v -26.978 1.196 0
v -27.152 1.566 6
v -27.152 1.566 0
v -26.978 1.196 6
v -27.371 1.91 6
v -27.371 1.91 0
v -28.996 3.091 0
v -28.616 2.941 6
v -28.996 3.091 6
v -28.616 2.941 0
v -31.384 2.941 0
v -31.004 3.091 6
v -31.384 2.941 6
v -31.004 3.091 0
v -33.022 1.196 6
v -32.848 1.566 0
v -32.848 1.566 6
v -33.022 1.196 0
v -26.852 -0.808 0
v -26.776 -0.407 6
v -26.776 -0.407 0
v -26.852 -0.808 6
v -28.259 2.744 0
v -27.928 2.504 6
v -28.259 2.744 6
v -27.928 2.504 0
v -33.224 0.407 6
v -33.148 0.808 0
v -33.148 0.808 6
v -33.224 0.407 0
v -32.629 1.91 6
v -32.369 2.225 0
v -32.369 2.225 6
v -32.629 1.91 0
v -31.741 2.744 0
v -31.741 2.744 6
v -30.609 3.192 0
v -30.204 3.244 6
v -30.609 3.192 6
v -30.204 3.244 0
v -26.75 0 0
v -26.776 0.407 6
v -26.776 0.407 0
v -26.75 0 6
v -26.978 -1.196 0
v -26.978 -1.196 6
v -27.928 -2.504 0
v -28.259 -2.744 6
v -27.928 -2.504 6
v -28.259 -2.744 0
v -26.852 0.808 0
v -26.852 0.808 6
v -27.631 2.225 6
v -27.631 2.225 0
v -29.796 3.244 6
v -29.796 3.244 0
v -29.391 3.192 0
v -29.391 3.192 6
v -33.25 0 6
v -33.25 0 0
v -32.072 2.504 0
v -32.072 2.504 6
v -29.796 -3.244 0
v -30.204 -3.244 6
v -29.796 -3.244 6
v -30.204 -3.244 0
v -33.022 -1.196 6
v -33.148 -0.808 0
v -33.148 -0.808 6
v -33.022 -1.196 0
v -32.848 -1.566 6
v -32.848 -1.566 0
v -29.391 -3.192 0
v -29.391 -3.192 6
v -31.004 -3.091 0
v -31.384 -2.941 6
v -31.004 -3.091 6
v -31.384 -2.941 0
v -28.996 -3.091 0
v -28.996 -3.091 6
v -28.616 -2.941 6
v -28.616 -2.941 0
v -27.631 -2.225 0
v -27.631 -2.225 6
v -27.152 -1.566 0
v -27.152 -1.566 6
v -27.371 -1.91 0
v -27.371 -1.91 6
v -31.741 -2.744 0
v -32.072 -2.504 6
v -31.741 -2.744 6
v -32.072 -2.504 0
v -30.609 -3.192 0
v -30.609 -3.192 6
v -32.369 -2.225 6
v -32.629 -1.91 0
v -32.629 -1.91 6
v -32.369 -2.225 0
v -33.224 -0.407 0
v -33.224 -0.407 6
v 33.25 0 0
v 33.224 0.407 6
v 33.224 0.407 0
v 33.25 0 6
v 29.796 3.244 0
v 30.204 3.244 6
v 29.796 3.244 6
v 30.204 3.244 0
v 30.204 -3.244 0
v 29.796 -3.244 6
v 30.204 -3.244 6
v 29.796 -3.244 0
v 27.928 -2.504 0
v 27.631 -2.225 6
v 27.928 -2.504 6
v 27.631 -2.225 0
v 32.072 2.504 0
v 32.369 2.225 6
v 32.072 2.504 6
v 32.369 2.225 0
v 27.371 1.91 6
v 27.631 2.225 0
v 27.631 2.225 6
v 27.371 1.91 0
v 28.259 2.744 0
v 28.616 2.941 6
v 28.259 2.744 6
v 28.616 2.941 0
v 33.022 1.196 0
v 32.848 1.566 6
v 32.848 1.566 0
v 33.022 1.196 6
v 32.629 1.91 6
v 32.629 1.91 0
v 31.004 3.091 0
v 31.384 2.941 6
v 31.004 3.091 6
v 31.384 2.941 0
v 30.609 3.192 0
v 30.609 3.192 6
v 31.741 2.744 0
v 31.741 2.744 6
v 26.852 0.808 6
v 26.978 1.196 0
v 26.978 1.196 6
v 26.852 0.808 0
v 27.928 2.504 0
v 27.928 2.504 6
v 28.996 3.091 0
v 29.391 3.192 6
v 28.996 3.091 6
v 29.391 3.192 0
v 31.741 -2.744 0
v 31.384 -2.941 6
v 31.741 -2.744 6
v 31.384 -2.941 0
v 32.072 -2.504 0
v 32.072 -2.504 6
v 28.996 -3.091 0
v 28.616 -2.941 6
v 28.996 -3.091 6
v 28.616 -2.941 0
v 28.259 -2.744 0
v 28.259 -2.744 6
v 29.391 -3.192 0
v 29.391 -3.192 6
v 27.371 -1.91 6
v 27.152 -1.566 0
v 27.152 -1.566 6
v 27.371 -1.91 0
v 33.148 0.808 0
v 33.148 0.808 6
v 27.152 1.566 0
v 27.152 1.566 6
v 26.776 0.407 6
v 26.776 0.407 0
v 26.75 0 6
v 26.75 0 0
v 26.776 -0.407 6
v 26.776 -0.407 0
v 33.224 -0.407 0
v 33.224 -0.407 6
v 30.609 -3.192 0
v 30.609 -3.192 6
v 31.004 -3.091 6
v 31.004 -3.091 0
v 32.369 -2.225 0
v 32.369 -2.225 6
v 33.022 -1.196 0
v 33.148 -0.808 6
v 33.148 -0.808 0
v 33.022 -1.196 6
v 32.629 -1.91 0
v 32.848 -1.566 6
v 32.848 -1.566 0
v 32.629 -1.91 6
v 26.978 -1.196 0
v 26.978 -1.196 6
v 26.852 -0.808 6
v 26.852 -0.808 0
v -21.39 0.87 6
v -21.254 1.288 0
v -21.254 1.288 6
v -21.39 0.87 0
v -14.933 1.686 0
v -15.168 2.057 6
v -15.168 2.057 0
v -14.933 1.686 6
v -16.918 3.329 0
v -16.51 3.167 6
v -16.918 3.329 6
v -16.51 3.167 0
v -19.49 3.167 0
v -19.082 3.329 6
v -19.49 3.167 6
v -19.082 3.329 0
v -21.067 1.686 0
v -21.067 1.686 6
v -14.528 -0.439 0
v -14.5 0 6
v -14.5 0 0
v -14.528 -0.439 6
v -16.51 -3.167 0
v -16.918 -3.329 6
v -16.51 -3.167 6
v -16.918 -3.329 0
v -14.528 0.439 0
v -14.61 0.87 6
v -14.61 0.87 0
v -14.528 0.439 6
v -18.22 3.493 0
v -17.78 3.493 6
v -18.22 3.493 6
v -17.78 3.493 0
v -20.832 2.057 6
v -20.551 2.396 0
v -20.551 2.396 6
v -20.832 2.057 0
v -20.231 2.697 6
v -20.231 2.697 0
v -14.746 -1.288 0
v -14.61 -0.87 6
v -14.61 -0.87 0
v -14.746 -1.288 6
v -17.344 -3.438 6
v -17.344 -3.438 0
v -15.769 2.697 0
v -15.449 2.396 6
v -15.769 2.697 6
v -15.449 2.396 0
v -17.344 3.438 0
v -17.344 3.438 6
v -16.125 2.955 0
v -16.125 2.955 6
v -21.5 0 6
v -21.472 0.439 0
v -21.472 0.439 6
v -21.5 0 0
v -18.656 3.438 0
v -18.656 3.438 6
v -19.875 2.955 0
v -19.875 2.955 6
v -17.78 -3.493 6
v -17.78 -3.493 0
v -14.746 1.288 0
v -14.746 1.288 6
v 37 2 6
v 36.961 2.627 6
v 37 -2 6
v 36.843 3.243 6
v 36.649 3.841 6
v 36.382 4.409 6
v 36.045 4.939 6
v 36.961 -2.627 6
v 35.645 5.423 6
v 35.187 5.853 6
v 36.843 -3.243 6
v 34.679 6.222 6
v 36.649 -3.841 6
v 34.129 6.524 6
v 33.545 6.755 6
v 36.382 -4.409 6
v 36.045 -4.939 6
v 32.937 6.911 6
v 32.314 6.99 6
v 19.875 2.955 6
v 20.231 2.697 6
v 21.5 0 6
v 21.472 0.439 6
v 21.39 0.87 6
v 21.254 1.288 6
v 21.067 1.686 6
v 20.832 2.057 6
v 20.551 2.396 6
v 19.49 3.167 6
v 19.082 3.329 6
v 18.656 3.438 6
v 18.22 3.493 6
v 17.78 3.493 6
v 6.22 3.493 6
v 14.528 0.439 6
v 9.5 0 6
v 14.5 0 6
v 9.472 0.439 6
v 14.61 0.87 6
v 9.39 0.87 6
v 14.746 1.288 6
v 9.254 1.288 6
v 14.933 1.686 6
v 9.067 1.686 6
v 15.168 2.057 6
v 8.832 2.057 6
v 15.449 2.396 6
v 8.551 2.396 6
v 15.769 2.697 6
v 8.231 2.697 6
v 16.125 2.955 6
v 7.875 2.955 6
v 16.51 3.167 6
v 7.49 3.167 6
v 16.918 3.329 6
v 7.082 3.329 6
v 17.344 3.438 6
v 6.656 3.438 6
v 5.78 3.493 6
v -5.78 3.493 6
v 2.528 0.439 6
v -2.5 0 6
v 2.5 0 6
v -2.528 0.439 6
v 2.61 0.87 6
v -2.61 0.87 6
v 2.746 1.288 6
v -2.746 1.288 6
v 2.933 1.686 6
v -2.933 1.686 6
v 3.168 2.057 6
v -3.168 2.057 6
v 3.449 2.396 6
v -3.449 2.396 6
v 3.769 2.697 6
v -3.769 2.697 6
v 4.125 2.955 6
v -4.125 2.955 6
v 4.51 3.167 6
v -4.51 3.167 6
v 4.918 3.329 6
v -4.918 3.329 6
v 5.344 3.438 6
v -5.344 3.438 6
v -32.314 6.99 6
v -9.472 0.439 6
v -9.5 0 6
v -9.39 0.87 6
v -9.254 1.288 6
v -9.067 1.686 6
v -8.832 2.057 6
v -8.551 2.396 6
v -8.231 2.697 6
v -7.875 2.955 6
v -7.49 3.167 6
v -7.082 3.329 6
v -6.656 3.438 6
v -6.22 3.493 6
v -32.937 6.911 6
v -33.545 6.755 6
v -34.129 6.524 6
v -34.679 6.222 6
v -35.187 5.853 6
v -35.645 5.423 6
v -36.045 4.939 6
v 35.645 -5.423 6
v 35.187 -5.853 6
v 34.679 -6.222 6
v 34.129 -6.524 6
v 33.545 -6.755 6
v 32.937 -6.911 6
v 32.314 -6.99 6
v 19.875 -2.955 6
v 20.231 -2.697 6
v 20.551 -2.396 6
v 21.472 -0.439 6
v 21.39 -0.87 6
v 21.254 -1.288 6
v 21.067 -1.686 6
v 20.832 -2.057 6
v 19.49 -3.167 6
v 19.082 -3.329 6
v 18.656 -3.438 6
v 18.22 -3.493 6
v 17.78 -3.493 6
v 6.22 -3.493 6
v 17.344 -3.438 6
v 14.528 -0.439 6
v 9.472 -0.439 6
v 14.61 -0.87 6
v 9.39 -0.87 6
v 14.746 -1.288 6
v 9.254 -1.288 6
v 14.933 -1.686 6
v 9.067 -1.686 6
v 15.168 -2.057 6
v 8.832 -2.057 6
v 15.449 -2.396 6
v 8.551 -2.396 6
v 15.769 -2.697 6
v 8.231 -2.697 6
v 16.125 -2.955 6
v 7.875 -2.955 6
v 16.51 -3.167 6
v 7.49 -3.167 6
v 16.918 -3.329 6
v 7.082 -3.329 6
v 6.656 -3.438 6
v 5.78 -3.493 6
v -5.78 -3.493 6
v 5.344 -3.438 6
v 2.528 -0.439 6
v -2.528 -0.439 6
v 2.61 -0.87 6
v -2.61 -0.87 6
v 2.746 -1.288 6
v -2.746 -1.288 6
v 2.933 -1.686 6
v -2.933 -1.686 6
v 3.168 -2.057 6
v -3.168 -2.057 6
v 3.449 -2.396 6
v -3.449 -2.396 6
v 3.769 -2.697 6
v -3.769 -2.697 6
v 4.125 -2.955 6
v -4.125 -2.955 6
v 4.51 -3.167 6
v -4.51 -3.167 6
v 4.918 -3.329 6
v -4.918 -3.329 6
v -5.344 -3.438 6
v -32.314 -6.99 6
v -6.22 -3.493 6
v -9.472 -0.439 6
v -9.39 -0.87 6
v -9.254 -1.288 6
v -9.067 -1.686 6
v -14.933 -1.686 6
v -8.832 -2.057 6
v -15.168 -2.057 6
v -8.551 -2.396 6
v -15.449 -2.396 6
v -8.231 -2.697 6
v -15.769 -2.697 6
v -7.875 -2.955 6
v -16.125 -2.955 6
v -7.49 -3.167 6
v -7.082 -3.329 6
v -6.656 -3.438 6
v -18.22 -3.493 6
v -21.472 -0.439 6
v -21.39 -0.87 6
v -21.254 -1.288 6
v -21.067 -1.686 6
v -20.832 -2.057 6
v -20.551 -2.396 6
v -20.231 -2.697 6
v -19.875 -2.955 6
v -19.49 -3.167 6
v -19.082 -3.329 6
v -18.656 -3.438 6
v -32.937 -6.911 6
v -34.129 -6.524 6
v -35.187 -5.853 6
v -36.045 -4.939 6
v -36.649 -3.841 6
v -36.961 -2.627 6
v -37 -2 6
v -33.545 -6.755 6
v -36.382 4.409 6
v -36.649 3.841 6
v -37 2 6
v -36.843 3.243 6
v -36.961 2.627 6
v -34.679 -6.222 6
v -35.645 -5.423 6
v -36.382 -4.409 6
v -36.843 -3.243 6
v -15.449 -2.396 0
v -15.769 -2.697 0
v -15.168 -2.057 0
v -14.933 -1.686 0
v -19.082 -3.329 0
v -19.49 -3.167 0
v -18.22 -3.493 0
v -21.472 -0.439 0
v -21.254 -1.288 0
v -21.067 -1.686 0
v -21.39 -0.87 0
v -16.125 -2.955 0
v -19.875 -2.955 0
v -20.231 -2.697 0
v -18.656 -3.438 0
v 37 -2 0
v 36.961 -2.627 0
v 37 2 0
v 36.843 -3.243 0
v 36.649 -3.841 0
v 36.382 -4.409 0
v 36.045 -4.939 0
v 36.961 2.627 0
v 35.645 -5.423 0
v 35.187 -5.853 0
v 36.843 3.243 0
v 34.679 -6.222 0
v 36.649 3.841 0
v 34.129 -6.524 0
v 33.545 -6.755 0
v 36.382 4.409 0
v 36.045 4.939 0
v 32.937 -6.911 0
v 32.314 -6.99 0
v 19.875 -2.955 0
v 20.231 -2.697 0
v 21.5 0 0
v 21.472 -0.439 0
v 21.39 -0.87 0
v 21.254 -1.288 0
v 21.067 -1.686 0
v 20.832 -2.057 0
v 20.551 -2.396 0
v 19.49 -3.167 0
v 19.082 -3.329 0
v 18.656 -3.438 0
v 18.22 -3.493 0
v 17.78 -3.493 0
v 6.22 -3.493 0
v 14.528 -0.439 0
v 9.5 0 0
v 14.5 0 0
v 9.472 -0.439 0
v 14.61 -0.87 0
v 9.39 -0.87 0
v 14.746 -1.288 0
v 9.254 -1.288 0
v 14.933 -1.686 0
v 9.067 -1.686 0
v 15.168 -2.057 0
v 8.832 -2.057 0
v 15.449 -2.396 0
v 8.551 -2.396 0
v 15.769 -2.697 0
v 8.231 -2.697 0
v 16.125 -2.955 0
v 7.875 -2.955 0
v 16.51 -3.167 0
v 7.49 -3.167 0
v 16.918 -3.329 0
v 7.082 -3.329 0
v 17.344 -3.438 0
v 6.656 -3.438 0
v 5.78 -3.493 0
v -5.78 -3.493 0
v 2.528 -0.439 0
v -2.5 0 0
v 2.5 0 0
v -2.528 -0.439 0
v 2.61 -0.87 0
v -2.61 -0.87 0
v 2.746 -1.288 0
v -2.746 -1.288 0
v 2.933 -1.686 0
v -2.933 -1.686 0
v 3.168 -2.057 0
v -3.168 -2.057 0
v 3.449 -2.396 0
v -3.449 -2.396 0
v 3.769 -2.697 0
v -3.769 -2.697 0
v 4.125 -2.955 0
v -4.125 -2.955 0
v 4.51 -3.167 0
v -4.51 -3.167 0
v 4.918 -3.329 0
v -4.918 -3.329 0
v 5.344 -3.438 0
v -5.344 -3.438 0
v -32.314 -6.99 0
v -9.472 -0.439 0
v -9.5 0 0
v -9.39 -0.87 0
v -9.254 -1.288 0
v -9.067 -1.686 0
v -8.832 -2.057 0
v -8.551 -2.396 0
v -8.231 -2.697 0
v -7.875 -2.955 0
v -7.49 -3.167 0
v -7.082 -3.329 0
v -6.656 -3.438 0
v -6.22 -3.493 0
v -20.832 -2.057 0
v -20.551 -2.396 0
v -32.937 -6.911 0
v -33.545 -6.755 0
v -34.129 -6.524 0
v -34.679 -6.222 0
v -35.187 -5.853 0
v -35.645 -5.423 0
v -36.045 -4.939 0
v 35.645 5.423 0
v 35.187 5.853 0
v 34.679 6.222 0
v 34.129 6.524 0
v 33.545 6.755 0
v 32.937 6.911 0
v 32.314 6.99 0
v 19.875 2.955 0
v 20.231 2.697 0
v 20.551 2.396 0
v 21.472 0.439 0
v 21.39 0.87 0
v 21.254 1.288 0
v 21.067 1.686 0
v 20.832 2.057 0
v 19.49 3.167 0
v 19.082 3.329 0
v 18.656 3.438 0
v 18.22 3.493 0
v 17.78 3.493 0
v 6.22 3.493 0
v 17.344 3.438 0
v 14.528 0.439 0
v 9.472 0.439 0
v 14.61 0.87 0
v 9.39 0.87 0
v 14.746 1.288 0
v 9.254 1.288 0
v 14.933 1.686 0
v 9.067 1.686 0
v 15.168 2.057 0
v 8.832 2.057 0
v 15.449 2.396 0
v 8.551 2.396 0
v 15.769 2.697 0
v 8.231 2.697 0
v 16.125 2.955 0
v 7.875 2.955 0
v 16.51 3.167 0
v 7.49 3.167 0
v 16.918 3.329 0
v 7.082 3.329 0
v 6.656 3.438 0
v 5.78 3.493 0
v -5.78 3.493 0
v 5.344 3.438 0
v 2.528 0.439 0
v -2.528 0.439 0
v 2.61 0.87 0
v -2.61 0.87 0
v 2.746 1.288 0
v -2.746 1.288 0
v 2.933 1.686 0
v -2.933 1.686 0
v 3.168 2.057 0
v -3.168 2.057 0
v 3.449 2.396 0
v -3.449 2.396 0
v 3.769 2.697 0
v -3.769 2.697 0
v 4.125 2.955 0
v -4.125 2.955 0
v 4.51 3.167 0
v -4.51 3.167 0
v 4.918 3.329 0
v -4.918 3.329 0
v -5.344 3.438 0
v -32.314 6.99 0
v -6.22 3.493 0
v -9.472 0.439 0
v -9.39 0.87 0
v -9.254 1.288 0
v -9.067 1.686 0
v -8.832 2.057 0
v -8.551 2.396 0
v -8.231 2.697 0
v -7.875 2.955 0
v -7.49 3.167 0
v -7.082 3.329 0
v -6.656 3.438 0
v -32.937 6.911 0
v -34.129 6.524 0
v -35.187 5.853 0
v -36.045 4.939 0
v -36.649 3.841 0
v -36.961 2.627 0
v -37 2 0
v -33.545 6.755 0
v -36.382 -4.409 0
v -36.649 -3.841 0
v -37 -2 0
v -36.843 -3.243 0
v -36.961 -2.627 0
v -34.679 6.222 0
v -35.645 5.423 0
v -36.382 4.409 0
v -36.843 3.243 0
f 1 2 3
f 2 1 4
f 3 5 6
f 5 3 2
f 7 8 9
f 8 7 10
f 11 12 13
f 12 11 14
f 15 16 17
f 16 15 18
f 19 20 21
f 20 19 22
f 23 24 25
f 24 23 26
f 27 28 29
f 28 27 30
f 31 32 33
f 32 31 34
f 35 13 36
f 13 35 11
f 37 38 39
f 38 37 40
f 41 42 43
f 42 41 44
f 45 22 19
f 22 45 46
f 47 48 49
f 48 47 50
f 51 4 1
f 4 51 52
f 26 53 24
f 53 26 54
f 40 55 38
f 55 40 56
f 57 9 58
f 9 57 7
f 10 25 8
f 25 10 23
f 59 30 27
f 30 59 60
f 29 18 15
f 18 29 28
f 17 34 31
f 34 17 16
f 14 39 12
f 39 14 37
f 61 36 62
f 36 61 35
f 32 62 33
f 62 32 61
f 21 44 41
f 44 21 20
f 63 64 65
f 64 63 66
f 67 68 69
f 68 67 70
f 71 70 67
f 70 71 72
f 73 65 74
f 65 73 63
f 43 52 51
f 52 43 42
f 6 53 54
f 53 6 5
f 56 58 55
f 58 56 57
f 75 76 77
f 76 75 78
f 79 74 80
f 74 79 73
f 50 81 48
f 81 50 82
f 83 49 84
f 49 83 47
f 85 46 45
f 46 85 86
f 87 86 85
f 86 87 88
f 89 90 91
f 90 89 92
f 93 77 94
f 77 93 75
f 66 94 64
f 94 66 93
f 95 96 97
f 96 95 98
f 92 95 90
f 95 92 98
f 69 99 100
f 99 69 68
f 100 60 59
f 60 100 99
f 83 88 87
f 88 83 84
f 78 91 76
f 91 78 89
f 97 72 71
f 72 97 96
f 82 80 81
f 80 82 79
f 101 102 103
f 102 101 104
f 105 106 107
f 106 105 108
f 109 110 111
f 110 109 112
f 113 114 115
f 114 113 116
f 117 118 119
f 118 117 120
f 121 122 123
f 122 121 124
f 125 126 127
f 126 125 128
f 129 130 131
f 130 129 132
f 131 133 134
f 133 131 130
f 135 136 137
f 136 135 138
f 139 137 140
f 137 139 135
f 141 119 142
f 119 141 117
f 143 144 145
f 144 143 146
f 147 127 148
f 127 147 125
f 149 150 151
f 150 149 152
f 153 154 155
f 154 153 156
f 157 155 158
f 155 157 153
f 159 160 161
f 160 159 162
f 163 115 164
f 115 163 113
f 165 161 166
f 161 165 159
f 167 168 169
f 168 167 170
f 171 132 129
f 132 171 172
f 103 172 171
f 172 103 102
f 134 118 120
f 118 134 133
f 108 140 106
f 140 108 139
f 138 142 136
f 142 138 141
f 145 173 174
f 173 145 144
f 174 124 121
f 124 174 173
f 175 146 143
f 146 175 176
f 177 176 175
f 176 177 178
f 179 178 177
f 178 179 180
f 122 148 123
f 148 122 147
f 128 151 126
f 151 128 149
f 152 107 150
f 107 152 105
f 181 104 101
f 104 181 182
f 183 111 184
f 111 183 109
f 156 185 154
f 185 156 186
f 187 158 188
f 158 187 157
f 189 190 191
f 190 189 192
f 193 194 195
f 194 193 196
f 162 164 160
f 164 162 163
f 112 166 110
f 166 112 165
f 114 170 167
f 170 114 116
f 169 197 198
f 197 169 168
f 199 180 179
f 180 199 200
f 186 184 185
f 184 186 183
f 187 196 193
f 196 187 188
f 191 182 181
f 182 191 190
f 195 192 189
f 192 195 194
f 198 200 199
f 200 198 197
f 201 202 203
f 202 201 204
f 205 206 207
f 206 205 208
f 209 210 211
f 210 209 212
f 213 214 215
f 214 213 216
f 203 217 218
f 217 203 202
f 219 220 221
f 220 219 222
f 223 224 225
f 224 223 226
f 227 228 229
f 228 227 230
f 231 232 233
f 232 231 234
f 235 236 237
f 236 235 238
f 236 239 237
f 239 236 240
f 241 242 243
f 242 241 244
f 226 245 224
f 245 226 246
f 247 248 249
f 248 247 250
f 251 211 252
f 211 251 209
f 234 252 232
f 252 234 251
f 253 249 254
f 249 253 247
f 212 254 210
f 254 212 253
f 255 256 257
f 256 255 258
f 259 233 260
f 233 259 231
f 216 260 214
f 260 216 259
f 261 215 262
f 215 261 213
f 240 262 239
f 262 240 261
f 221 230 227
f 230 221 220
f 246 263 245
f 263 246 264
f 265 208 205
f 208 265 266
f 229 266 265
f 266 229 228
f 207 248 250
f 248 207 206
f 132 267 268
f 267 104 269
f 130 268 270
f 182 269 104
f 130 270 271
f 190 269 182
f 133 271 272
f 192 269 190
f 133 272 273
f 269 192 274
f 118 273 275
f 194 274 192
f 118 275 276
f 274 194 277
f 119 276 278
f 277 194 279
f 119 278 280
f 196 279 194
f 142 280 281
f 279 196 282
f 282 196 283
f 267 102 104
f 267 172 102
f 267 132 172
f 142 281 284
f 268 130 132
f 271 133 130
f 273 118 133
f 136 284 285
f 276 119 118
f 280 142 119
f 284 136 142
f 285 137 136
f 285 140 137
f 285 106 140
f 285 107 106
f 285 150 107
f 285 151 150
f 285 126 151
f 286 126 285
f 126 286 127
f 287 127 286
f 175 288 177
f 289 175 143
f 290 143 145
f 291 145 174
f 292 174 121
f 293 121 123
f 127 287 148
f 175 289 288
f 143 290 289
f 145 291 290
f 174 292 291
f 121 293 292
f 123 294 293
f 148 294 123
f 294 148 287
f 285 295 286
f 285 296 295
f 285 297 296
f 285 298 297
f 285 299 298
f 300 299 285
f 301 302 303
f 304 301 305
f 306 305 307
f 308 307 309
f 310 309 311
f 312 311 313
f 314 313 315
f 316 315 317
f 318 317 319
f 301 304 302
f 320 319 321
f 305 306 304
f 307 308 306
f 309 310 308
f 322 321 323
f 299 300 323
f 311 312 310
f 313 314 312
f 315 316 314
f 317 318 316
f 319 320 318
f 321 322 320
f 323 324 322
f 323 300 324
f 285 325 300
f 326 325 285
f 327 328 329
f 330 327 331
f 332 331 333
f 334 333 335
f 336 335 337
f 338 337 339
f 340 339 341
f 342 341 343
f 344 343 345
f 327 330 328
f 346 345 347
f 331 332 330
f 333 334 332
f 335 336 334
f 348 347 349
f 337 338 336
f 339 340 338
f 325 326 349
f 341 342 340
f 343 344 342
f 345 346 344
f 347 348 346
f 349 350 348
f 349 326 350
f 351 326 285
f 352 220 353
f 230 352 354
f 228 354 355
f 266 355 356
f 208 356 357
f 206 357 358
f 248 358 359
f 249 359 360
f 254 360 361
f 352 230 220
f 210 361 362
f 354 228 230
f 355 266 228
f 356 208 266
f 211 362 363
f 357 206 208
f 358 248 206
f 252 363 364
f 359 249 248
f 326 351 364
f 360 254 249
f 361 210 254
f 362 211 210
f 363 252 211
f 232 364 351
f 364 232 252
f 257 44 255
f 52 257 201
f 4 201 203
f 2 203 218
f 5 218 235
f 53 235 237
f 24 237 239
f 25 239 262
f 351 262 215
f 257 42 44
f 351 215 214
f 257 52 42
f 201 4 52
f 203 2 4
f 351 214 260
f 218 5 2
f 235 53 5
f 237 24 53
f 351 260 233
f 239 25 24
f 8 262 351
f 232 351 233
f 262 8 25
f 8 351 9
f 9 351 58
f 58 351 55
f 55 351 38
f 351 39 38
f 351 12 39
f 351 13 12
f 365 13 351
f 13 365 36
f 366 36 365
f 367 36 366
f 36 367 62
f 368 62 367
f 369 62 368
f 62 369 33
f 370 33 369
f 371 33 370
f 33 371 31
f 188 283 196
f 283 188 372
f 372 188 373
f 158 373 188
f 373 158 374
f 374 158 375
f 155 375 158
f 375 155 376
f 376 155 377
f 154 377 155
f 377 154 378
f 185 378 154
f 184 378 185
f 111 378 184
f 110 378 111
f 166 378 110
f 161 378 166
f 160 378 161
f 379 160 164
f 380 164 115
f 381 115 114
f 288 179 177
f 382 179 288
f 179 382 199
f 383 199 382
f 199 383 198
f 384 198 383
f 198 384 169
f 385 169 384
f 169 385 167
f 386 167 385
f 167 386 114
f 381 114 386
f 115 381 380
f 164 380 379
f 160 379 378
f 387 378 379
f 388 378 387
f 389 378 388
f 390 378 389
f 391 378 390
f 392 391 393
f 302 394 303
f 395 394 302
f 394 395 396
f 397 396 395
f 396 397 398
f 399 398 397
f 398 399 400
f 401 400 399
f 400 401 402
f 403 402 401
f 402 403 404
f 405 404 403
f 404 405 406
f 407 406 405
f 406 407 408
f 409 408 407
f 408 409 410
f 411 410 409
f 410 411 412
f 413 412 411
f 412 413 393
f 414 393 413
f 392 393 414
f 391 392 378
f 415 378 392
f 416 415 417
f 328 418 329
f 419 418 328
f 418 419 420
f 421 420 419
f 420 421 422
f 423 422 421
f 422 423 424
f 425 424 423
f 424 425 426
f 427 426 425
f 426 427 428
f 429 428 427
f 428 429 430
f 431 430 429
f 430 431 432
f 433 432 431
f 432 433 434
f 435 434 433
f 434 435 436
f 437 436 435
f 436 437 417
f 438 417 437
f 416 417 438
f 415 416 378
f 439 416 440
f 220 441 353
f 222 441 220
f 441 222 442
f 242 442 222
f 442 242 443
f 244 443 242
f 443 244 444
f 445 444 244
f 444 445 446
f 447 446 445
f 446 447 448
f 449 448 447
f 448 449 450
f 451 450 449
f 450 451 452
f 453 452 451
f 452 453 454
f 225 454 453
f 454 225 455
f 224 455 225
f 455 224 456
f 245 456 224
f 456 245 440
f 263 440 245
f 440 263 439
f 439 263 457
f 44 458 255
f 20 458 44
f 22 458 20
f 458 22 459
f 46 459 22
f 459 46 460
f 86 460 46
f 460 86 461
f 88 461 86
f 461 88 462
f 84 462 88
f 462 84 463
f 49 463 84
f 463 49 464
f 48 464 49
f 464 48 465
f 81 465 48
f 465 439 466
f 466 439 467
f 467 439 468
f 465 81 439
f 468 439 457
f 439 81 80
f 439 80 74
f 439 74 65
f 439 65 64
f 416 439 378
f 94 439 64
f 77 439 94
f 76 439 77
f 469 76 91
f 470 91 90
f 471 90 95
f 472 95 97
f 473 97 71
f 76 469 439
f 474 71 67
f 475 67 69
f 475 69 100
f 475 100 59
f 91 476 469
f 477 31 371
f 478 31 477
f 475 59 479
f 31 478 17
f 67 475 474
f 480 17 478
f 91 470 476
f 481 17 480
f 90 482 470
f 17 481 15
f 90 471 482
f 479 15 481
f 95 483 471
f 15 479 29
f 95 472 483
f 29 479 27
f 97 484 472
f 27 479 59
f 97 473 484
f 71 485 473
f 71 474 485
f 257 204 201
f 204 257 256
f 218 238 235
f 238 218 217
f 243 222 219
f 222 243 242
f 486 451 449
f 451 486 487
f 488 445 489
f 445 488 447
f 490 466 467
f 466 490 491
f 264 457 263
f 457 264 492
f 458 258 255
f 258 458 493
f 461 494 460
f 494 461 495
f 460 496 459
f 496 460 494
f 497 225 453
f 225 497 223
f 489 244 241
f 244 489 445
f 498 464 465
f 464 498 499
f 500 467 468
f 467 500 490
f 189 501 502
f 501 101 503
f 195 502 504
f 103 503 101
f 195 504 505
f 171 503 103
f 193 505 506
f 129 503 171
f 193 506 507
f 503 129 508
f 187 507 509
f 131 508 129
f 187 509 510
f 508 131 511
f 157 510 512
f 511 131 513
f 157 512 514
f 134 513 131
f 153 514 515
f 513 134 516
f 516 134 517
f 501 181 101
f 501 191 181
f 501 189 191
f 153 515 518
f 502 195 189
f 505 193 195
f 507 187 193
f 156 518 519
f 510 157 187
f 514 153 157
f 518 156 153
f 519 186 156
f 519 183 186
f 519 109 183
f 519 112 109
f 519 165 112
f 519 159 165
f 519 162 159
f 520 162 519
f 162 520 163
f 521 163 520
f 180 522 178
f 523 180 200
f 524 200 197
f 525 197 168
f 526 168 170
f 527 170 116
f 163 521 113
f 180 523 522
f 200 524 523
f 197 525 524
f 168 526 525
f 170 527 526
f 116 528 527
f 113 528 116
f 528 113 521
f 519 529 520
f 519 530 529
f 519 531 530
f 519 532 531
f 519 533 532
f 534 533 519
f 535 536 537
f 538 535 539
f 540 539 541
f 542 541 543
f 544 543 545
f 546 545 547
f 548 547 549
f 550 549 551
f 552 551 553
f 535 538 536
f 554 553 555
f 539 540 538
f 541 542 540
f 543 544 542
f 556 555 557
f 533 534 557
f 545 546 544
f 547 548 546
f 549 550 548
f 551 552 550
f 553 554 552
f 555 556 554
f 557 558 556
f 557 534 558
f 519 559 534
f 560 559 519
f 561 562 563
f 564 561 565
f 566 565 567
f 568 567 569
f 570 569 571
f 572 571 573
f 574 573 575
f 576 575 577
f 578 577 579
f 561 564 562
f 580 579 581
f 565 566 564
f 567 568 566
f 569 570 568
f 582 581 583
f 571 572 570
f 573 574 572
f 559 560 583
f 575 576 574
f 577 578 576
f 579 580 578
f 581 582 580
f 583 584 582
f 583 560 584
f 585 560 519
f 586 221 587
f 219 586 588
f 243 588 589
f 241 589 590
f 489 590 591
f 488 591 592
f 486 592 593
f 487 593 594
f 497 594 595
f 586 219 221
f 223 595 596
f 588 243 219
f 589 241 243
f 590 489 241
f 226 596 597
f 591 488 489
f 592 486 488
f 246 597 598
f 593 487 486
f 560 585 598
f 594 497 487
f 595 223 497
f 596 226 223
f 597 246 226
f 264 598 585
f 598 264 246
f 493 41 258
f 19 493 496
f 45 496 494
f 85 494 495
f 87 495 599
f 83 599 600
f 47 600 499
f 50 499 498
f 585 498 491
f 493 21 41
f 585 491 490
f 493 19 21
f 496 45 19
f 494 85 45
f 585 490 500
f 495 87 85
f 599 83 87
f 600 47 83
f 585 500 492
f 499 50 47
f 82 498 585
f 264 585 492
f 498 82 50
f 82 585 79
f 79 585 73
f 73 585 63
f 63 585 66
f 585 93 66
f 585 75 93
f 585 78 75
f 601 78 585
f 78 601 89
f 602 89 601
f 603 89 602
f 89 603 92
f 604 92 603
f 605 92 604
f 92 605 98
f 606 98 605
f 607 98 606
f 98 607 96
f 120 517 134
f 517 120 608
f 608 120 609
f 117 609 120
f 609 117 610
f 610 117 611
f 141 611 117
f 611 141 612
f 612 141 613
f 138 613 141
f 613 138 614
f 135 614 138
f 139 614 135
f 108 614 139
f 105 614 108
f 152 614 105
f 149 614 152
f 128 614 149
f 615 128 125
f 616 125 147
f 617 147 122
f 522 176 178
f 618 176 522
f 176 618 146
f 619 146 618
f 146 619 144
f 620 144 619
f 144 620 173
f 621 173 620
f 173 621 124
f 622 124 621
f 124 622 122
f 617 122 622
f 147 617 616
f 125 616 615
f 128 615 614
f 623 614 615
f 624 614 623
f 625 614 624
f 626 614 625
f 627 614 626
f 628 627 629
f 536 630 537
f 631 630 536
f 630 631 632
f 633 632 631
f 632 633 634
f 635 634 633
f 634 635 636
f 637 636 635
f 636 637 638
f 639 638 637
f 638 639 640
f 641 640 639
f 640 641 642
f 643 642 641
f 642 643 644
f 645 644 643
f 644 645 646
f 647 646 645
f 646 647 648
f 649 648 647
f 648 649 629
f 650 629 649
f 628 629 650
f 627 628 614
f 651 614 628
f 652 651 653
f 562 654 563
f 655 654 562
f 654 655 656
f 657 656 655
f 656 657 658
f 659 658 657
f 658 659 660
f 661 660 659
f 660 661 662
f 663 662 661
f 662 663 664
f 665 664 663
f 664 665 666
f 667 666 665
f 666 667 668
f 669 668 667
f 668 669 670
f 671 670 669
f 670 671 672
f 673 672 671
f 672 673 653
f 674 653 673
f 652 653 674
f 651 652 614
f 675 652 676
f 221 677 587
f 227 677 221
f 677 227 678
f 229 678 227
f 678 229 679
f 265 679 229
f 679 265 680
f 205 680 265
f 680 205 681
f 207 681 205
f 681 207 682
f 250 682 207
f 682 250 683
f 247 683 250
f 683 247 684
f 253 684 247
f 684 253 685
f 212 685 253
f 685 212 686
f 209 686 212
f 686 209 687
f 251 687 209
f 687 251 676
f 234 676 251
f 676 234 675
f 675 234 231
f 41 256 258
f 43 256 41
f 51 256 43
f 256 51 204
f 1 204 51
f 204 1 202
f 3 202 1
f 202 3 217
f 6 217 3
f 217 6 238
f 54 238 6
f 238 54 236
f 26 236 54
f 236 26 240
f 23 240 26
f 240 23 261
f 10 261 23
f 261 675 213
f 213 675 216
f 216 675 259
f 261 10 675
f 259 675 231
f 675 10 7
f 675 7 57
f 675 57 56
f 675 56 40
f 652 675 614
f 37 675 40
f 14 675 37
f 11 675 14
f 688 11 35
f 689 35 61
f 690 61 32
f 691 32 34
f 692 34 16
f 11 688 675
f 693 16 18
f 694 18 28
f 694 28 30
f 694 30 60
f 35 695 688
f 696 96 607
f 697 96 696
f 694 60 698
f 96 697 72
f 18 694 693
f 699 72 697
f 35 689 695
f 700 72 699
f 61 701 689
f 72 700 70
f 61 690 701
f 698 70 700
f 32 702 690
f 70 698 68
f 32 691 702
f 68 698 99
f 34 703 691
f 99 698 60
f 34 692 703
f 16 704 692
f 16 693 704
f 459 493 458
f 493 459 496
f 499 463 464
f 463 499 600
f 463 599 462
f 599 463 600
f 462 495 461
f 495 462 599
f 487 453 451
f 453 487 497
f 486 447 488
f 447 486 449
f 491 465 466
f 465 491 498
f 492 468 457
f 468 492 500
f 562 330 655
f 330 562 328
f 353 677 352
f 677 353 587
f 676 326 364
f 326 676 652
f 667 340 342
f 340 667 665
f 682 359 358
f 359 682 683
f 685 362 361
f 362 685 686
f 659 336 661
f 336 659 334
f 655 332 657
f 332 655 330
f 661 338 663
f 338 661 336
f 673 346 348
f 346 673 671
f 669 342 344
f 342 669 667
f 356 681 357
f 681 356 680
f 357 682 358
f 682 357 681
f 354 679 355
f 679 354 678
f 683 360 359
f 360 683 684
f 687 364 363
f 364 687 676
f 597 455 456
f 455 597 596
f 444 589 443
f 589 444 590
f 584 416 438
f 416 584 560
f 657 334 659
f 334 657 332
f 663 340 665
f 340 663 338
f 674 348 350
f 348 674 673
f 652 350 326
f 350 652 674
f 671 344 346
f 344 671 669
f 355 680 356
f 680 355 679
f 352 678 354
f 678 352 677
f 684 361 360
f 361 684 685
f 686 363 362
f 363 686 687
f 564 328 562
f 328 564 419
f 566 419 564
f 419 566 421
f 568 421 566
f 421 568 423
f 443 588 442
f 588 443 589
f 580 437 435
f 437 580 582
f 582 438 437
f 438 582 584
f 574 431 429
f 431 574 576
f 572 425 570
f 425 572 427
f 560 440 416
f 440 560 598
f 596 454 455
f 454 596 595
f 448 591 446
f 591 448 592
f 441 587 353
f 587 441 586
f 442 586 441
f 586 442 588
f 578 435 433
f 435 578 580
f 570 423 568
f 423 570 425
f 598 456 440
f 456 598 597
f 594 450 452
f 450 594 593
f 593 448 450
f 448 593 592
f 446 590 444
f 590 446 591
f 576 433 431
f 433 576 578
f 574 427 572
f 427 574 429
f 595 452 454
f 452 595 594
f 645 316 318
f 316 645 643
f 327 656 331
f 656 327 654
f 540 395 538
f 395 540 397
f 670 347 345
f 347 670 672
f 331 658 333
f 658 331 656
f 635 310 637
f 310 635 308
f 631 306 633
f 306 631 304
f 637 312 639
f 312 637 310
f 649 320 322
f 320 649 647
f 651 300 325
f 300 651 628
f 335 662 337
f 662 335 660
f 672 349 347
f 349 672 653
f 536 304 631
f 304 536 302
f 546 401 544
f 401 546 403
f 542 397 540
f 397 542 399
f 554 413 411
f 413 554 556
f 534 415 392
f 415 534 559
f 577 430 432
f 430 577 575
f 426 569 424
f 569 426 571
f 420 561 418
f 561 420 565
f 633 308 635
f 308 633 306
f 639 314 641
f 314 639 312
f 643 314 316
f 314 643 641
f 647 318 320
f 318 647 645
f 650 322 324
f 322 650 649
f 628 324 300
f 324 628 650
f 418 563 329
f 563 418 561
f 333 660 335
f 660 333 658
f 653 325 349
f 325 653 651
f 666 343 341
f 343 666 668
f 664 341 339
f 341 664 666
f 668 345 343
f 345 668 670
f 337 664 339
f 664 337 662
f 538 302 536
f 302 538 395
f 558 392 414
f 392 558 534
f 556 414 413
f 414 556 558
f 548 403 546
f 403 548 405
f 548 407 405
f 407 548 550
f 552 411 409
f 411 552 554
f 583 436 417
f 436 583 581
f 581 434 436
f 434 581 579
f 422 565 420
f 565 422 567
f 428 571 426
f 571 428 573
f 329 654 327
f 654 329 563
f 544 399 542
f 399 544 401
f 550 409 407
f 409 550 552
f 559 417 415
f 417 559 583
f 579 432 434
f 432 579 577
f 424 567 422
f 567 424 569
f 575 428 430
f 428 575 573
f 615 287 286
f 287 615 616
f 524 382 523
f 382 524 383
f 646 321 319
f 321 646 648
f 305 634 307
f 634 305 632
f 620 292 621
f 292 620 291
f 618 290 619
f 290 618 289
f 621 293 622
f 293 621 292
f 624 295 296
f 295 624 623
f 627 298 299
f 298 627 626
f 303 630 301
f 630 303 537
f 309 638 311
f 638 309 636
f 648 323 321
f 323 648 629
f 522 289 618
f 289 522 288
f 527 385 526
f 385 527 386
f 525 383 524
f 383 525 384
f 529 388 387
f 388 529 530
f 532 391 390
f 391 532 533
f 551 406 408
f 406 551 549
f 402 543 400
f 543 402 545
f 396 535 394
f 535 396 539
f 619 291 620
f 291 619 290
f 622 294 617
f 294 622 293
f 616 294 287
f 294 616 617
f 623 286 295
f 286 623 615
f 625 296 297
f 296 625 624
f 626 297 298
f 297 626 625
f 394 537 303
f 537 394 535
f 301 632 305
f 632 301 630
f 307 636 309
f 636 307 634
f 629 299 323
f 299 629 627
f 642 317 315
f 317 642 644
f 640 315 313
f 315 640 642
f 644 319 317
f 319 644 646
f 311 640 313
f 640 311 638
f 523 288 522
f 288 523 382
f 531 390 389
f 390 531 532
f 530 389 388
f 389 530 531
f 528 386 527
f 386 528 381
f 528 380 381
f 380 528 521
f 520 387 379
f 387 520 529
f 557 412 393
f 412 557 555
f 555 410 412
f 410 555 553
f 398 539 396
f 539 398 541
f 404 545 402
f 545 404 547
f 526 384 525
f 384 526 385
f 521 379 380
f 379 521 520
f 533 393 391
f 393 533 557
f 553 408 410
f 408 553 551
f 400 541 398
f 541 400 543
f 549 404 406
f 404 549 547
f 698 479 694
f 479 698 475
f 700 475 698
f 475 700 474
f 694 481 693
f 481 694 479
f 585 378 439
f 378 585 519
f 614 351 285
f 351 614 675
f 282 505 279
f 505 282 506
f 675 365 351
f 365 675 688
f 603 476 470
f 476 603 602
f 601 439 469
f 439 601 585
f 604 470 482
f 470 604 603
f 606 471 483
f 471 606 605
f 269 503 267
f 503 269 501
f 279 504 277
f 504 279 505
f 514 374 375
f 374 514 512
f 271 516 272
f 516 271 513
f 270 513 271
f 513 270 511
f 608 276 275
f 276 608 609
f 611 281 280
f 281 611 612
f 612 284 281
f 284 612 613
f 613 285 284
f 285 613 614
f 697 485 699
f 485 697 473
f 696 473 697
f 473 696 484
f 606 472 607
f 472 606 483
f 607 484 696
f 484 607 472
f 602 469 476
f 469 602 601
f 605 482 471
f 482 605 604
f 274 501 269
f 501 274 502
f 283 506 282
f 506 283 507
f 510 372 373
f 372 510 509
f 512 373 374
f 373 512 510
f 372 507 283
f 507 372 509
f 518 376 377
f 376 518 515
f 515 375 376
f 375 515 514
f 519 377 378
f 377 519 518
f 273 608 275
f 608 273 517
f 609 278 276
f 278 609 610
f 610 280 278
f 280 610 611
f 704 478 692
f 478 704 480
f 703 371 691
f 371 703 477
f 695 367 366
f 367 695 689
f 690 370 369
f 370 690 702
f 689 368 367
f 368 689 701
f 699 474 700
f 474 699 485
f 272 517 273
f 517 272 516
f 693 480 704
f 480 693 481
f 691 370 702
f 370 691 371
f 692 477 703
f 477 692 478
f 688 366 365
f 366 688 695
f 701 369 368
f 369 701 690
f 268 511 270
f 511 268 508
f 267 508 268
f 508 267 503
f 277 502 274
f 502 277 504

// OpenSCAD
$fn = 50;


difference() {
	union() {
		hull() {
			translate(v = [-32.0000000000, 2.0000000000, 0]) {
				cylinder(h = 6, r = 5);
			}
			translate(v = [32.0000000000, 2.0000000000, 0]) {
				cylinder(h = 6, r = 5);
			}
			translate(v = [-32.0000000000, -2.0000000000, 0]) {
				cylinder(h = 6, r = 5);
			}
			translate(v = [32.0000000000, -2.0000000000, 0]) {
				cylinder(h = 6, r = 5);
			}
		}
	}
	union() {
		#translate(v = [-30.0000000000, 0.0000000000, 0]) {
			cylinder(h = 6, r = 3.2500000000);
		}
		#translate(v = [30.0000000000, 0.0000000000, 0]) {
			cylinder(h = 6, r = 3.2500000000);
		}
		#translate(v = [-30.0000000000, 0.0000000000, -100.0000000000]) {
			cylinder(h = 200, r = 3.2500000000);
		}
		#translate(v = [-30.0000000000, 0.0000000000, -100.0000000000]) {
			cylinder(h = 200, r = 3.2500000000);
		}
		#translate(v = [30.0000000000, 0.0000000000, -100.0000000000]) {
			cylinder(h = 200, r = 3.2500000000);
		}
		#translate(v = [30.0000000000, 0.0000000000, -100.0000000000]) {
			cylinder(h = 200, r = 3.2500000000);
		}
		#translate(v = [-30.0000000000, 0.0000000000, 0]) {
			cylinder(h = 6, r = 1.8000000000);
		}
		#translate(v = [30.0000000000, 0.0000000000, 0]) {
			cylinder(h = 6, r = 1.8000000000);
		}
		#translate(v = [-30.0000000000, 0.0000000000, 0]) {
			cylinder(h = 6, r = 1.8000000000);
		}
		#translate(v = [30.0000000000, 0.0000000000, 0]) {
			cylinder(h = 6, r = 1.8000000000);
		}
		#translate(v = [-30.0000000000, 0.0000000000, 0]) {
			cylinder(h = 6, r = 1.8000000000);
		}
		#translate(v = [30.0000000000, 0.0000000000, 0]) {
			cylinder(h = 6, r = 1.8000000000);
		}
		#translate(v = [-18.0000000000, 0, 0]) {
			cylinder(h = 6, r = 3.5000000000);
		}
		#translate(v = [-6.0000000000, 0, 0]) {
			cylinder(h = 6, r = 3.5000000000);
		}
		#translate(v = [6.0000000000, 0, 0]) {
			cylinder(h = 6, r = 3.5000000000);
		}
		#translate(v = [18.0000000000, 0, 0]) {
			cylinder(h = 6, r = 3.5000000000);
		}
	}
}
